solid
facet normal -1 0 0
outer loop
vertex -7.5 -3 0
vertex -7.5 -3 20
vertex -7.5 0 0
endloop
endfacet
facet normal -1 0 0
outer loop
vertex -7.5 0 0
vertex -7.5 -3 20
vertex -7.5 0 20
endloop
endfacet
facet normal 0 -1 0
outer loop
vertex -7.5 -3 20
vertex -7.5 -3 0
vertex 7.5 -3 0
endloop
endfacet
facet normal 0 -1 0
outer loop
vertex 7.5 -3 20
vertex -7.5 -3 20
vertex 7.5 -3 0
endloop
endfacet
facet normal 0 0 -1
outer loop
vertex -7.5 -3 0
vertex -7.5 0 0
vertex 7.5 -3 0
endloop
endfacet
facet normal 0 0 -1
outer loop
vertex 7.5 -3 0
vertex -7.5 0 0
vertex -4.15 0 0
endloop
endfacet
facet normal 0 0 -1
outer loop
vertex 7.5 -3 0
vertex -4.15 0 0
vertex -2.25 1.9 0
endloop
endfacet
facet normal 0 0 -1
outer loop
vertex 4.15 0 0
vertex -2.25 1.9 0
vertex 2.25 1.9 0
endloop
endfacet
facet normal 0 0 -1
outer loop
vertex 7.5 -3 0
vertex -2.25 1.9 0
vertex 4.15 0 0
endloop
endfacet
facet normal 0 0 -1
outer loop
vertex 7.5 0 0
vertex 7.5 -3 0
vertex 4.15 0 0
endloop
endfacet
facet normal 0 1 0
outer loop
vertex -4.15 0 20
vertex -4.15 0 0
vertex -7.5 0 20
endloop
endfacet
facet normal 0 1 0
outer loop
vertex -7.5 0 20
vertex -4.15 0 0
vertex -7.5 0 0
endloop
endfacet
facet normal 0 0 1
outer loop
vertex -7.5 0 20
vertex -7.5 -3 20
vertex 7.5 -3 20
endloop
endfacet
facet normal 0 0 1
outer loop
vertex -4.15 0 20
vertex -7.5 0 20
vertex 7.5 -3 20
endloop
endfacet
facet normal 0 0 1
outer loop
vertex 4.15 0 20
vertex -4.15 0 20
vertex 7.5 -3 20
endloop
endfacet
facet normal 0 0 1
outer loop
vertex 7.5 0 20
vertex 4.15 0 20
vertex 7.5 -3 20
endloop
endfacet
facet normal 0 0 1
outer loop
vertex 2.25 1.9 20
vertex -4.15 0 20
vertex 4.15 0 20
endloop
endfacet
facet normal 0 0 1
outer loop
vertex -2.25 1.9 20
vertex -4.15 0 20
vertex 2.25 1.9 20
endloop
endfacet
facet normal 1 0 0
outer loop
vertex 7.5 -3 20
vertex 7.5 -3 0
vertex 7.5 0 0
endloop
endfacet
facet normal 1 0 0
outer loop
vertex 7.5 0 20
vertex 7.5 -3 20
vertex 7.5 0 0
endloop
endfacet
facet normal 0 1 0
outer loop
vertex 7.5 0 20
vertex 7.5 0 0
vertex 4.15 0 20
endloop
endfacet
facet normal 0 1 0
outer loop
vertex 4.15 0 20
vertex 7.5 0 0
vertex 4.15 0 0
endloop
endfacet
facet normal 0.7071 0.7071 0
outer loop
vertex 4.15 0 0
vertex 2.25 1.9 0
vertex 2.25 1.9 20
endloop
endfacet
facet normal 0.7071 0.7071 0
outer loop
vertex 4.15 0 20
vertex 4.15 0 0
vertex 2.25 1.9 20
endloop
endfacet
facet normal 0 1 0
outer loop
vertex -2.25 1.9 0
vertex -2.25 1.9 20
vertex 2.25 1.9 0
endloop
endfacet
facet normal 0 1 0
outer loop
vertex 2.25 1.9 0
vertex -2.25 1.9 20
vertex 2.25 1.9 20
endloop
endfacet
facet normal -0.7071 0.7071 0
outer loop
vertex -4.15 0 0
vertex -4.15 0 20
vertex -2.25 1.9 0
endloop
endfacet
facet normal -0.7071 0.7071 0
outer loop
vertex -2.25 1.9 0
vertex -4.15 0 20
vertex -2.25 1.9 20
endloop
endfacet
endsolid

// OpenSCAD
//start
module  v_slot(l = 1, w = 15, mnt_d = 3) 
{ 
big_w = 8.3; // big side on the trapizoid
small_w = 4.5; // small side on the trapizoid
thk = 1.9; // thickness of the trapizoid

a = big_w/2;
b = small_w/2;
c = thk;
d = 0;

	linear_extrude(height=l, center=false) {
	polygon(points = [ [-a,d],[a,d],[b,c],[-b,c]],paths = [[0,1,2,3]]);
	}
	translate([-w/2,-mnt_d,0])
	cube([w,mnt_d,l]);
}

v_slot(20);
